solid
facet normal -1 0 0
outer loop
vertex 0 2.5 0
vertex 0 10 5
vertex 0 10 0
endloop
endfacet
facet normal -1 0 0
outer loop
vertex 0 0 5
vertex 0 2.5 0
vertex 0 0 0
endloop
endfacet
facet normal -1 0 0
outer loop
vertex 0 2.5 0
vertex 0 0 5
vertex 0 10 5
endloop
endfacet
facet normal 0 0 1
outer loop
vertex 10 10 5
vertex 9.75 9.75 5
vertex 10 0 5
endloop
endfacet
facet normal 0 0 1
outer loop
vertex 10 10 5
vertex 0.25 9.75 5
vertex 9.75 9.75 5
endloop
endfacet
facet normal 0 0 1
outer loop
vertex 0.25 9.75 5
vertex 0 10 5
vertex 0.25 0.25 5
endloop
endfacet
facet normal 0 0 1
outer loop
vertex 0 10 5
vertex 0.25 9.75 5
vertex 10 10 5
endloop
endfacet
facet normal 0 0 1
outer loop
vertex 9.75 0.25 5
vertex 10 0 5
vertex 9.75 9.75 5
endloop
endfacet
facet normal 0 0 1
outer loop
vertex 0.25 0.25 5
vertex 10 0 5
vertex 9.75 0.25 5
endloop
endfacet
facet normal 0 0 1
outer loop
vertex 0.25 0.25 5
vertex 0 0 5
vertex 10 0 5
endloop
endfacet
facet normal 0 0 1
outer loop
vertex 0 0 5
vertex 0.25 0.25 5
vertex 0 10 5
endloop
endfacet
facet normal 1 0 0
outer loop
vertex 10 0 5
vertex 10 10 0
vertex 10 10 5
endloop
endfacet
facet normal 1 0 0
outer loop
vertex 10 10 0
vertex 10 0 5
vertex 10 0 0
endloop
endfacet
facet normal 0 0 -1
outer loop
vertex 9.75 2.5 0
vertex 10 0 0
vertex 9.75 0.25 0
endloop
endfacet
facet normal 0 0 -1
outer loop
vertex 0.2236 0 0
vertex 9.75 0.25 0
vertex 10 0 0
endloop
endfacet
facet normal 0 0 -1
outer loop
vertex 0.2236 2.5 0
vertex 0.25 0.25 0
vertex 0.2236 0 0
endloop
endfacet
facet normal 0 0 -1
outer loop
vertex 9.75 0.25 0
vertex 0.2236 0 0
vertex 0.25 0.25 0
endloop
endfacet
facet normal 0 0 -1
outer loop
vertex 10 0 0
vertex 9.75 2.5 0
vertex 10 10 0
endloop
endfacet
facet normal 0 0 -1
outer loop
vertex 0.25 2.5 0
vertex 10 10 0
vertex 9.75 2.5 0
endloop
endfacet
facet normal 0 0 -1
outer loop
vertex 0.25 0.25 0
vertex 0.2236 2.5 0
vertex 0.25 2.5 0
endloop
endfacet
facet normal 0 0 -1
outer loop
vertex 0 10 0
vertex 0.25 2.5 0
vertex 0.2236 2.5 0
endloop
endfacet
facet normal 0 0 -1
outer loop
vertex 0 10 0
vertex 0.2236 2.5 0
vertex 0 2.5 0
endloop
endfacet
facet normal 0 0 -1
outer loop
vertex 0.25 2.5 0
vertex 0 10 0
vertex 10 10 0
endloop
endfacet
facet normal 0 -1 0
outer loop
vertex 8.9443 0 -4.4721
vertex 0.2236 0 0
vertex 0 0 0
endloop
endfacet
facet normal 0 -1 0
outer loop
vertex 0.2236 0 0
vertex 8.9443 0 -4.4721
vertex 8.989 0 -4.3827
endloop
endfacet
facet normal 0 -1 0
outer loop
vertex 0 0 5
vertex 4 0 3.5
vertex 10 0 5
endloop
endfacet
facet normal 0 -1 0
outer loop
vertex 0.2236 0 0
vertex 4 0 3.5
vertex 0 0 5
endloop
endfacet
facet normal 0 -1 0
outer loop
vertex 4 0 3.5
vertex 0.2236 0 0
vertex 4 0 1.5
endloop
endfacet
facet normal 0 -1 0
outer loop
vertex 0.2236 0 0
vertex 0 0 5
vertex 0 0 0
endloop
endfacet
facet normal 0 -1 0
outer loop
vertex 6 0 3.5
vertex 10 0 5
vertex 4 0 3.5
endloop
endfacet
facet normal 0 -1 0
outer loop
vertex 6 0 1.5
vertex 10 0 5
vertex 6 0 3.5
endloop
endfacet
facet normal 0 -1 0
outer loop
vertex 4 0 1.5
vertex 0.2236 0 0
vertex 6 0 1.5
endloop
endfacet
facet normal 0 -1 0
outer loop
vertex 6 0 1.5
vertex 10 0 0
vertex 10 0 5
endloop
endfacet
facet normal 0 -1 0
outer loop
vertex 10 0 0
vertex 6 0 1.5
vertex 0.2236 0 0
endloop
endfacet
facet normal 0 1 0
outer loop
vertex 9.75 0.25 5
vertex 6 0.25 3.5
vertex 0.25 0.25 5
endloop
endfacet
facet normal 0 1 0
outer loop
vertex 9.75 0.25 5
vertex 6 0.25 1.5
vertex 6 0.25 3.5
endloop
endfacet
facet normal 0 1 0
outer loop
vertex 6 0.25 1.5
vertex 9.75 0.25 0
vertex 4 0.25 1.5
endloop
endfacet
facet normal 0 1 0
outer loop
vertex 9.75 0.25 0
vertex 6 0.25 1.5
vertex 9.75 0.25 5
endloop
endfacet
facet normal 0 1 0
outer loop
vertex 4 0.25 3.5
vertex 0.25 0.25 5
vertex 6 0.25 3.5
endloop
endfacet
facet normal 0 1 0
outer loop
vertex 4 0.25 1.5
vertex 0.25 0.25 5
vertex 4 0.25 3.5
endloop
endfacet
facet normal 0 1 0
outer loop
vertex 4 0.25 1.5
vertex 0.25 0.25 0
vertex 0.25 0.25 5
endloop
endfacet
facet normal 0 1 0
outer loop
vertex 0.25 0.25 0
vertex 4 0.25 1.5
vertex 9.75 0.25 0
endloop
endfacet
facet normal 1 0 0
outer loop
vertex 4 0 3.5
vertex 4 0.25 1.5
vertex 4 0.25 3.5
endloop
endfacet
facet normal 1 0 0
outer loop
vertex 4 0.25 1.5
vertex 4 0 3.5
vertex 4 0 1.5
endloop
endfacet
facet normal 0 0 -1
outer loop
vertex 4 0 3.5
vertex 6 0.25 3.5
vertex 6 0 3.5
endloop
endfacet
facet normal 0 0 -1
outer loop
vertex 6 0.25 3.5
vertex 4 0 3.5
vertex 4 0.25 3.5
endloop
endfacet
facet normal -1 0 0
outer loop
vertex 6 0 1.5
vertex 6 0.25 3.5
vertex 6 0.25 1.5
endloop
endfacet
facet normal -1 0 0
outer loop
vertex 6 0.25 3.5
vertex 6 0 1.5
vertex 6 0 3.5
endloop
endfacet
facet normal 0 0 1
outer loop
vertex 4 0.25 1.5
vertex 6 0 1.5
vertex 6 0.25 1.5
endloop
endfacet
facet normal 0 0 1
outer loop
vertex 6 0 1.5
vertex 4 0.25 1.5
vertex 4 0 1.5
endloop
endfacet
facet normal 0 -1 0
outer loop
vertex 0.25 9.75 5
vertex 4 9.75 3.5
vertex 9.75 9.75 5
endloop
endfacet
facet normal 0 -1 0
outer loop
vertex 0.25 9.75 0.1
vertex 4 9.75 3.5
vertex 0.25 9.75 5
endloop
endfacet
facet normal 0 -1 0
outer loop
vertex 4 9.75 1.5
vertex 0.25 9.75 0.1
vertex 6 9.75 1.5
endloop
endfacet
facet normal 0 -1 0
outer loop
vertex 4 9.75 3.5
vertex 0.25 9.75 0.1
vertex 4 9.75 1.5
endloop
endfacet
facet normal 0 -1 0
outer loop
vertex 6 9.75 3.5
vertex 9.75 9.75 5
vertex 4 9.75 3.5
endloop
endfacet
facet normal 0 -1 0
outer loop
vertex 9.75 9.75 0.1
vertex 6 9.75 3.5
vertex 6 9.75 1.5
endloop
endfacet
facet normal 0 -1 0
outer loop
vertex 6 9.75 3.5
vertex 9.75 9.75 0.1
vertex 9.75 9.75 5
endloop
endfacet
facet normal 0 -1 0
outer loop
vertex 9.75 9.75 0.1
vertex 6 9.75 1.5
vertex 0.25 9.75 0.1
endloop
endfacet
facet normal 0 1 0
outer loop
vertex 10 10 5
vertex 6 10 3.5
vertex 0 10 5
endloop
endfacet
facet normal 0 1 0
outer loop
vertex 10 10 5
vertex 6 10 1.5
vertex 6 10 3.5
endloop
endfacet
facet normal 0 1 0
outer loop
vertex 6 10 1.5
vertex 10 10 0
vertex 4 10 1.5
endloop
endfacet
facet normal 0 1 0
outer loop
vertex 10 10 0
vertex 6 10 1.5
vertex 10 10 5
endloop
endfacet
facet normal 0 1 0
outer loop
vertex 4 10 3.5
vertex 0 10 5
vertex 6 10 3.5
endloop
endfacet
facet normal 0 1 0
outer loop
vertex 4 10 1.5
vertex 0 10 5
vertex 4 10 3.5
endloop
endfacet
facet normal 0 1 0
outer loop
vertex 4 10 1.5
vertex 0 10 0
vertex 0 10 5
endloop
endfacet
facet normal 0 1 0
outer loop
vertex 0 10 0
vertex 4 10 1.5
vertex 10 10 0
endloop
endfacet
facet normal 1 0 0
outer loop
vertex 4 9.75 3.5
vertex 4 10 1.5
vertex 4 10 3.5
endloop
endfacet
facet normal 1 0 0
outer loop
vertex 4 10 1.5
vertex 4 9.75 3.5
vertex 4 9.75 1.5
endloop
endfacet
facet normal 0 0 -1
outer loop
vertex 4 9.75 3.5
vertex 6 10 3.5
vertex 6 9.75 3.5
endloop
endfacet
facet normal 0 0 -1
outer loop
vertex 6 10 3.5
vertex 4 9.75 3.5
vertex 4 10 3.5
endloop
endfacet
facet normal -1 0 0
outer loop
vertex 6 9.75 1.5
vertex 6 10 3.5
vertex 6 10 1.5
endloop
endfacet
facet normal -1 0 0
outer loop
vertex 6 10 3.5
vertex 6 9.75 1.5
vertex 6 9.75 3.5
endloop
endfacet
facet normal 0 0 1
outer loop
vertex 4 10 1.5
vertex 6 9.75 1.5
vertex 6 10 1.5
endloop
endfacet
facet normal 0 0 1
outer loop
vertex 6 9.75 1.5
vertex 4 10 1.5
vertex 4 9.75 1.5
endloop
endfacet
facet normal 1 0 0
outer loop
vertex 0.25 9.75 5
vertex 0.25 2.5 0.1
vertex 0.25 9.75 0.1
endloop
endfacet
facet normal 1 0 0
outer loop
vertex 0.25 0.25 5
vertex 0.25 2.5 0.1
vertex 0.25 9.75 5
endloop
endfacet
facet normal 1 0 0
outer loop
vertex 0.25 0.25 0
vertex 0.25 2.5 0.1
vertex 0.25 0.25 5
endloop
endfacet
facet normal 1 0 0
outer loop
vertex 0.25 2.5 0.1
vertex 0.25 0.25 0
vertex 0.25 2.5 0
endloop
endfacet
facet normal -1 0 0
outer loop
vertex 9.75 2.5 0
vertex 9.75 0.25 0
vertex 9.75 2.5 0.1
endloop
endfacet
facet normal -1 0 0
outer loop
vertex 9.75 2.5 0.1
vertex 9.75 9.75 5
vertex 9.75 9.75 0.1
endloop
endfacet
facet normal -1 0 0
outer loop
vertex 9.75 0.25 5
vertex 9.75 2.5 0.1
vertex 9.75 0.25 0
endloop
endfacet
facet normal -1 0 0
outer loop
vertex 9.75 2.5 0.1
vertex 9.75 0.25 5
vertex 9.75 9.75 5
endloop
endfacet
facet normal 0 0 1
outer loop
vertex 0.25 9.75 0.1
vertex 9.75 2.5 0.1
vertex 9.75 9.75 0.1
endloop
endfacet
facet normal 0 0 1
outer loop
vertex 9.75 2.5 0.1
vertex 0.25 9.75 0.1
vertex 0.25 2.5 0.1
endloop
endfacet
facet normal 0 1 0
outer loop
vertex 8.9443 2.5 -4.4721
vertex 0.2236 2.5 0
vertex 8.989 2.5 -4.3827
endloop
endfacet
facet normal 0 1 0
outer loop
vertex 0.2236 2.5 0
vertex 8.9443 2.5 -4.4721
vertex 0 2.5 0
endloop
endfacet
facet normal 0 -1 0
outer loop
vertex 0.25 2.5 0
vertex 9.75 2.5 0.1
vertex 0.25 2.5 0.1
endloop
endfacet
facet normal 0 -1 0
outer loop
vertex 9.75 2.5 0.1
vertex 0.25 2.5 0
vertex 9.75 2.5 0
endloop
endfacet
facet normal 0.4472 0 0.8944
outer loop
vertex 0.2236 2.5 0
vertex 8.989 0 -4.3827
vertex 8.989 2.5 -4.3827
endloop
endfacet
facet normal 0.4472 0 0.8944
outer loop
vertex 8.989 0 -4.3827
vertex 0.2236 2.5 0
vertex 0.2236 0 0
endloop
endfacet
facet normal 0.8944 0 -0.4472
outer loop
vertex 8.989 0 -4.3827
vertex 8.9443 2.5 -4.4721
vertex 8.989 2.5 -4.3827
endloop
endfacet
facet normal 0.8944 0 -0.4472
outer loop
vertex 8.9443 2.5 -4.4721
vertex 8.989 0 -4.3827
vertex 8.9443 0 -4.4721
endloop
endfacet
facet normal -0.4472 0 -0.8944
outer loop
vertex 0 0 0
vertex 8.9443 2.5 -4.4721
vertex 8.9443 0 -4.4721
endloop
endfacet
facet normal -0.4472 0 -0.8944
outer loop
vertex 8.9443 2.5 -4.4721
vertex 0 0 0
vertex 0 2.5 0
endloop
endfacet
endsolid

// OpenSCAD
buildingX=10;
buildingY=10;
floorHeight=5;
windowWidth=2;
windowHeight=2;
wallThickness=0.25;
rampWidth=2.5;

cube([wallThickness,buildingY,floorHeight]);

translate([buildingX-wallThickness,0,0])
cube([wallThickness,buildingY,floorHeight]);

difference(){
cube([buildingX,wallThickness,floorHeight]);

translate([buildingX/2-windowWidth/2,0,floorHeight/2-windowHeight/2])
cube([windowWidth,wallThickness*10,windowHeight]);
}

difference(){
translate([0,buildingY-wallThickness,0])
cube([buildingX,wallThickness,floorHeight]);

translate([buildingX/2-windowWidth/2,buildingY-wallThickness,floorHeight/2-windowHeight/2])
cube([windowWidth,wallThickness*10,windowHeight]);
}

translate([0,rampWidth,0])
cube([buildingX,buildingY-rampWidth,0.1]);

translate([0,0,0])
rotate([0,atan(floorHeight/buildingX),0]){
    cube([buildingX,rampWidth,0.1]);
}
